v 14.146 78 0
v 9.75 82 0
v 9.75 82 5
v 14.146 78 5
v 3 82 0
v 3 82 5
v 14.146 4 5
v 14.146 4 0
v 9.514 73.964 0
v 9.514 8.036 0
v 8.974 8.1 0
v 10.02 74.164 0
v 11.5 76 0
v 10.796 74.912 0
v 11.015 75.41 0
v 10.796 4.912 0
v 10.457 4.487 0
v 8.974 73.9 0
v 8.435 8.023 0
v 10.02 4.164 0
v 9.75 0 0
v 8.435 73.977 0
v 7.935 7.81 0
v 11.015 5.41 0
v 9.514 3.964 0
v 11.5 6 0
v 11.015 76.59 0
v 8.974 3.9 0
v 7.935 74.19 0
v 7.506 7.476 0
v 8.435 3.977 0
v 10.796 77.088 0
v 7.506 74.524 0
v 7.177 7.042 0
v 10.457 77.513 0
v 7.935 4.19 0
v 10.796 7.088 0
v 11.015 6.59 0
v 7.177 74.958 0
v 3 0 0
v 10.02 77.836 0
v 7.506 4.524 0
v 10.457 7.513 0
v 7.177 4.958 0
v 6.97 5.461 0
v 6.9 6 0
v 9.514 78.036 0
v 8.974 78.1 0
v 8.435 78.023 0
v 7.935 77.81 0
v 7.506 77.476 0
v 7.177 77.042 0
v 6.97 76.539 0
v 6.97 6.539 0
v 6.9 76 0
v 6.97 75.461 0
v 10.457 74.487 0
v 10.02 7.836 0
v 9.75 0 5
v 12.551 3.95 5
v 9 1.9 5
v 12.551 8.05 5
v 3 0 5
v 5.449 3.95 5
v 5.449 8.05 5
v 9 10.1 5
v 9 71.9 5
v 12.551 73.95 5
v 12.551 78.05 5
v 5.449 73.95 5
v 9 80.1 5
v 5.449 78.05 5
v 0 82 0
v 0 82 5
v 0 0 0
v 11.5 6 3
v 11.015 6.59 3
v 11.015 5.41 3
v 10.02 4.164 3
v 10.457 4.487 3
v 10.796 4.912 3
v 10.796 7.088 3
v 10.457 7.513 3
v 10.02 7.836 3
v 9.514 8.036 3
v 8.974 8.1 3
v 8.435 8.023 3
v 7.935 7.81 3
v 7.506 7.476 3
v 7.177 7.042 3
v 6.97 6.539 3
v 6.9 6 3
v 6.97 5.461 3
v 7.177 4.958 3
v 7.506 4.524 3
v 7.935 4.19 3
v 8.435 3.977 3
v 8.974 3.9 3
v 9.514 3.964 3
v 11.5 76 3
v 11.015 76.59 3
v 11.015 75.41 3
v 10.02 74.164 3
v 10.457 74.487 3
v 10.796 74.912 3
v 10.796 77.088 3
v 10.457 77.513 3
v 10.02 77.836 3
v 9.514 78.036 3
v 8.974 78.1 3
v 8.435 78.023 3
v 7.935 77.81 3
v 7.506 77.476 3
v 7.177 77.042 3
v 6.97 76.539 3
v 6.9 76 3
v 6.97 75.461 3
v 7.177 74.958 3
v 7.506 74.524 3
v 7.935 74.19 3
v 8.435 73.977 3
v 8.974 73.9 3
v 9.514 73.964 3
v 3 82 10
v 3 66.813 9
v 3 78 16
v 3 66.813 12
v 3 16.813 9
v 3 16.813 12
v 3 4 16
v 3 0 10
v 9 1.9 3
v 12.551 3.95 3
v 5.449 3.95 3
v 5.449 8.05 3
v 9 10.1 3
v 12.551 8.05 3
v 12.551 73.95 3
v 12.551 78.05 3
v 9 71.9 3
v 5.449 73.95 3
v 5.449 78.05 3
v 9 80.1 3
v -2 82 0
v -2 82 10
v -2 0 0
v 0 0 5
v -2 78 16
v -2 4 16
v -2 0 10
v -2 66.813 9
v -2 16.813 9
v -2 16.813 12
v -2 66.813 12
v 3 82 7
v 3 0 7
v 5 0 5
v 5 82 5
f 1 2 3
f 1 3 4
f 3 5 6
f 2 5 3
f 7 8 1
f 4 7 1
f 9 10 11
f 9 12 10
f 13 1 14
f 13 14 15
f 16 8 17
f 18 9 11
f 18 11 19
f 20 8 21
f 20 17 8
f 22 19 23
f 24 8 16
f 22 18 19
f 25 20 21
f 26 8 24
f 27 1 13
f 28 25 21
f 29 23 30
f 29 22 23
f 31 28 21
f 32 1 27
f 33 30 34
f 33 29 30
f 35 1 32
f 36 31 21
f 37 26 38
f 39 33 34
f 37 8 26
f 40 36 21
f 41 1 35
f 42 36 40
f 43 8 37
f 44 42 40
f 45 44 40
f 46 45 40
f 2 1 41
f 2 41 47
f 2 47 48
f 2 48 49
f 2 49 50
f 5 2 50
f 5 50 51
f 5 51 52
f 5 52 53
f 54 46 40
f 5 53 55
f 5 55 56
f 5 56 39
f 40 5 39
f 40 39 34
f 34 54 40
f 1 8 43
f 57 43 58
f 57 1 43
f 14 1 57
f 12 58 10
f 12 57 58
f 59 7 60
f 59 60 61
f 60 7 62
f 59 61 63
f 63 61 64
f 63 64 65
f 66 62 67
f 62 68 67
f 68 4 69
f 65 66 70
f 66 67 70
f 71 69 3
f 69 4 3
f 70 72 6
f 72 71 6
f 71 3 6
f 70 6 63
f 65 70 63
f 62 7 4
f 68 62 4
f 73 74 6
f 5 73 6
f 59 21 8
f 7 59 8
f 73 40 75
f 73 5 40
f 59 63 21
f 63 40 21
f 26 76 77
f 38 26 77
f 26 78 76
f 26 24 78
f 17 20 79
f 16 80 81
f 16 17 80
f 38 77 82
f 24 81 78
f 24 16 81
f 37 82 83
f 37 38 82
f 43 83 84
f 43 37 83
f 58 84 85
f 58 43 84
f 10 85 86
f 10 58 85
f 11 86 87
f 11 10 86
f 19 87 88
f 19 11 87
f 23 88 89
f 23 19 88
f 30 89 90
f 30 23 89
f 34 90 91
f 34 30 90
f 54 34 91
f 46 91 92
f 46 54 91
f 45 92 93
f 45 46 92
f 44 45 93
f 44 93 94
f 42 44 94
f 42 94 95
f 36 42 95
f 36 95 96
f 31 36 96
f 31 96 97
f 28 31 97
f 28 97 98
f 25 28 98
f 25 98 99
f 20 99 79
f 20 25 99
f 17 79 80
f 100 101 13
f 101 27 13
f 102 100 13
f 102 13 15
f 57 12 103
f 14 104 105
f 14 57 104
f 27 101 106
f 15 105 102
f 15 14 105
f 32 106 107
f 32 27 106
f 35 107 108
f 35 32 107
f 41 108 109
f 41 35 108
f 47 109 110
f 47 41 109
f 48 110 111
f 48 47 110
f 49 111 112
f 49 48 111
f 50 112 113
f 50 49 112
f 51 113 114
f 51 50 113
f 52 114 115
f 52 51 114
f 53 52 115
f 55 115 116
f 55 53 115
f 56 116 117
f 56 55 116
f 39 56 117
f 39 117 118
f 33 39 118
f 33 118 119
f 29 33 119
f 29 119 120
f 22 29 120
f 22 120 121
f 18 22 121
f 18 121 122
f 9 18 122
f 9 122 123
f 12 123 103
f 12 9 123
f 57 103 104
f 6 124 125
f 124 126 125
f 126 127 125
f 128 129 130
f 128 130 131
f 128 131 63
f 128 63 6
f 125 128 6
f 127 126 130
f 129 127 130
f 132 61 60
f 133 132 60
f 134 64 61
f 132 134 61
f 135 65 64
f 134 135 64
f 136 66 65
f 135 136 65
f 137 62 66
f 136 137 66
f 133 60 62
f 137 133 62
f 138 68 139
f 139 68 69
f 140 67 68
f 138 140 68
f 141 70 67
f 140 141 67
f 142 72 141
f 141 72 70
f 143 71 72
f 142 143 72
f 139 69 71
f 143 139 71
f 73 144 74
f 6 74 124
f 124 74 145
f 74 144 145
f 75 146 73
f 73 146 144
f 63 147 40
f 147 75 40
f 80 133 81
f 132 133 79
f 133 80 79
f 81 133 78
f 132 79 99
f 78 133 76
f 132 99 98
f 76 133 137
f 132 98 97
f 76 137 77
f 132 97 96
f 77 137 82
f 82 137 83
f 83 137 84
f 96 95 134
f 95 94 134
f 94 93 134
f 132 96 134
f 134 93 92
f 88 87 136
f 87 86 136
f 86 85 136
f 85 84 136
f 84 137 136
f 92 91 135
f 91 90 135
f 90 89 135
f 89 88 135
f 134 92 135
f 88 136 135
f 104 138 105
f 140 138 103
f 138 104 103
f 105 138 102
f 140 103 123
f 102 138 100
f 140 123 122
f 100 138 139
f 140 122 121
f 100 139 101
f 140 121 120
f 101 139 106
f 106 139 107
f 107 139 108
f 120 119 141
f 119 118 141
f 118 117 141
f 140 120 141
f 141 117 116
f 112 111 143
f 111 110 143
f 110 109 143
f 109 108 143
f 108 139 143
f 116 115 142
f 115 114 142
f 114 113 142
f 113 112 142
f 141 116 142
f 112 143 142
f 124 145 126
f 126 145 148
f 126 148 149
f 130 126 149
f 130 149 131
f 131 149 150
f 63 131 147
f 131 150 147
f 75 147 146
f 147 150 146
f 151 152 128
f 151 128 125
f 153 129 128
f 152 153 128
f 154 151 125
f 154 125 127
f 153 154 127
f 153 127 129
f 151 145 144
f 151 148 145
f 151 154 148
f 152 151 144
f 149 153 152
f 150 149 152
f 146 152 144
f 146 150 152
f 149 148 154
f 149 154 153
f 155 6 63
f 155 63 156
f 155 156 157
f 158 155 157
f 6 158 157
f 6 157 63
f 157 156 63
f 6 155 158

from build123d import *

# Parameters (mm, degrees)
PAD002_DEPTH    = 82
SKETCH001_W     = 50
SKETCH001_H     = 3
PAD001_DEPTH    = 5
SKETCH_R        = 2.1
PAD_DEPTH       = 5
POCKET_DEPTH    = 6
POCKET001_DEPTH = 2


with BuildPart() as pad002:
    # Sketch002 → Pad002 (new body)
    with BuildSketch(Plane(origin=(3, 0, 5), x_dir=(1, 0, 0), z_dir=(0, -1, 0))):
        Polygon((0, 0), (0, 2), (2, 0), align=None)
    extrude(amount=-PAD002_DEPTH)


with BuildPart() as pad001:
    # Sketch001 → Pad001 (new body)
    with BuildSketch(Plane.YZ.offset(-2)):
        Polygon((0, 0), (82, 0), (82, 10), (78, 16), (4, 16), (0, 10), align=None)
        with Locations((41.813425, 10.5)):
            Rectangle(SKETCH001_W, SKETCH001_H, mode=Mode.SUBTRACT)
    extrude(amount=PAD001_DEPTH)


with BuildPart() as pocket001:
    # Sketch → Pad (new body)
    with BuildSketch(Plane.XY):
        Polygon((0, 82), (0, 0), (9.750427, 0), (14.14649, 4), (14.14649, 78), (9.750427, 82), align=None)
        with Locations((9, 6)):
            Circle(SKETCH_R, mode=Mode.SUBTRACT)
        with Locations((9, 76)):
            Circle(SKETCH_R, mode=Mode.SUBTRACT)
    extrude(amount=PAD_DEPTH)

    # Fusion: union Pad001
    add(pad001.part)

    # Sketch003 → Pocket (cut)
    with BuildSketch(Plane(origin=(0, 0, 0), x_dir=(1, 0, 0), z_dir=(0, 0, -1))):
        Polygon((10.103576, -4.3), (11.5, -6), (10.103576, -7.7), align=None)
        Polygon((10.103576, -74.3), (10.103576, -77.7), (11.5, -76), align=None)
    extrude(amount=-POCKET_DEPTH, mode=Mode.SUBTRACT)

    # Sketch004 → Pocket001 (cut)
    with BuildSketch(Plane.XY.offset(5)):
        Polygon((9, 71.9), (12.550704, 73.95), (12.550704, 78.05), (9, 80.1), (5.449296, 78.05), (5.449296, 73.95), align=None)
        Polygon((9, 10.1), (5.449296, 8.05), (5.449296, 3.95), (9, 1.9), (12.550704, 3.95), (12.550704, 8.05), align=None)
    extrude(amount=-POCKET001_DEPTH, mode=Mode.SUBTRACT)


solid = Compound([pad002.part, pocket001.part])
